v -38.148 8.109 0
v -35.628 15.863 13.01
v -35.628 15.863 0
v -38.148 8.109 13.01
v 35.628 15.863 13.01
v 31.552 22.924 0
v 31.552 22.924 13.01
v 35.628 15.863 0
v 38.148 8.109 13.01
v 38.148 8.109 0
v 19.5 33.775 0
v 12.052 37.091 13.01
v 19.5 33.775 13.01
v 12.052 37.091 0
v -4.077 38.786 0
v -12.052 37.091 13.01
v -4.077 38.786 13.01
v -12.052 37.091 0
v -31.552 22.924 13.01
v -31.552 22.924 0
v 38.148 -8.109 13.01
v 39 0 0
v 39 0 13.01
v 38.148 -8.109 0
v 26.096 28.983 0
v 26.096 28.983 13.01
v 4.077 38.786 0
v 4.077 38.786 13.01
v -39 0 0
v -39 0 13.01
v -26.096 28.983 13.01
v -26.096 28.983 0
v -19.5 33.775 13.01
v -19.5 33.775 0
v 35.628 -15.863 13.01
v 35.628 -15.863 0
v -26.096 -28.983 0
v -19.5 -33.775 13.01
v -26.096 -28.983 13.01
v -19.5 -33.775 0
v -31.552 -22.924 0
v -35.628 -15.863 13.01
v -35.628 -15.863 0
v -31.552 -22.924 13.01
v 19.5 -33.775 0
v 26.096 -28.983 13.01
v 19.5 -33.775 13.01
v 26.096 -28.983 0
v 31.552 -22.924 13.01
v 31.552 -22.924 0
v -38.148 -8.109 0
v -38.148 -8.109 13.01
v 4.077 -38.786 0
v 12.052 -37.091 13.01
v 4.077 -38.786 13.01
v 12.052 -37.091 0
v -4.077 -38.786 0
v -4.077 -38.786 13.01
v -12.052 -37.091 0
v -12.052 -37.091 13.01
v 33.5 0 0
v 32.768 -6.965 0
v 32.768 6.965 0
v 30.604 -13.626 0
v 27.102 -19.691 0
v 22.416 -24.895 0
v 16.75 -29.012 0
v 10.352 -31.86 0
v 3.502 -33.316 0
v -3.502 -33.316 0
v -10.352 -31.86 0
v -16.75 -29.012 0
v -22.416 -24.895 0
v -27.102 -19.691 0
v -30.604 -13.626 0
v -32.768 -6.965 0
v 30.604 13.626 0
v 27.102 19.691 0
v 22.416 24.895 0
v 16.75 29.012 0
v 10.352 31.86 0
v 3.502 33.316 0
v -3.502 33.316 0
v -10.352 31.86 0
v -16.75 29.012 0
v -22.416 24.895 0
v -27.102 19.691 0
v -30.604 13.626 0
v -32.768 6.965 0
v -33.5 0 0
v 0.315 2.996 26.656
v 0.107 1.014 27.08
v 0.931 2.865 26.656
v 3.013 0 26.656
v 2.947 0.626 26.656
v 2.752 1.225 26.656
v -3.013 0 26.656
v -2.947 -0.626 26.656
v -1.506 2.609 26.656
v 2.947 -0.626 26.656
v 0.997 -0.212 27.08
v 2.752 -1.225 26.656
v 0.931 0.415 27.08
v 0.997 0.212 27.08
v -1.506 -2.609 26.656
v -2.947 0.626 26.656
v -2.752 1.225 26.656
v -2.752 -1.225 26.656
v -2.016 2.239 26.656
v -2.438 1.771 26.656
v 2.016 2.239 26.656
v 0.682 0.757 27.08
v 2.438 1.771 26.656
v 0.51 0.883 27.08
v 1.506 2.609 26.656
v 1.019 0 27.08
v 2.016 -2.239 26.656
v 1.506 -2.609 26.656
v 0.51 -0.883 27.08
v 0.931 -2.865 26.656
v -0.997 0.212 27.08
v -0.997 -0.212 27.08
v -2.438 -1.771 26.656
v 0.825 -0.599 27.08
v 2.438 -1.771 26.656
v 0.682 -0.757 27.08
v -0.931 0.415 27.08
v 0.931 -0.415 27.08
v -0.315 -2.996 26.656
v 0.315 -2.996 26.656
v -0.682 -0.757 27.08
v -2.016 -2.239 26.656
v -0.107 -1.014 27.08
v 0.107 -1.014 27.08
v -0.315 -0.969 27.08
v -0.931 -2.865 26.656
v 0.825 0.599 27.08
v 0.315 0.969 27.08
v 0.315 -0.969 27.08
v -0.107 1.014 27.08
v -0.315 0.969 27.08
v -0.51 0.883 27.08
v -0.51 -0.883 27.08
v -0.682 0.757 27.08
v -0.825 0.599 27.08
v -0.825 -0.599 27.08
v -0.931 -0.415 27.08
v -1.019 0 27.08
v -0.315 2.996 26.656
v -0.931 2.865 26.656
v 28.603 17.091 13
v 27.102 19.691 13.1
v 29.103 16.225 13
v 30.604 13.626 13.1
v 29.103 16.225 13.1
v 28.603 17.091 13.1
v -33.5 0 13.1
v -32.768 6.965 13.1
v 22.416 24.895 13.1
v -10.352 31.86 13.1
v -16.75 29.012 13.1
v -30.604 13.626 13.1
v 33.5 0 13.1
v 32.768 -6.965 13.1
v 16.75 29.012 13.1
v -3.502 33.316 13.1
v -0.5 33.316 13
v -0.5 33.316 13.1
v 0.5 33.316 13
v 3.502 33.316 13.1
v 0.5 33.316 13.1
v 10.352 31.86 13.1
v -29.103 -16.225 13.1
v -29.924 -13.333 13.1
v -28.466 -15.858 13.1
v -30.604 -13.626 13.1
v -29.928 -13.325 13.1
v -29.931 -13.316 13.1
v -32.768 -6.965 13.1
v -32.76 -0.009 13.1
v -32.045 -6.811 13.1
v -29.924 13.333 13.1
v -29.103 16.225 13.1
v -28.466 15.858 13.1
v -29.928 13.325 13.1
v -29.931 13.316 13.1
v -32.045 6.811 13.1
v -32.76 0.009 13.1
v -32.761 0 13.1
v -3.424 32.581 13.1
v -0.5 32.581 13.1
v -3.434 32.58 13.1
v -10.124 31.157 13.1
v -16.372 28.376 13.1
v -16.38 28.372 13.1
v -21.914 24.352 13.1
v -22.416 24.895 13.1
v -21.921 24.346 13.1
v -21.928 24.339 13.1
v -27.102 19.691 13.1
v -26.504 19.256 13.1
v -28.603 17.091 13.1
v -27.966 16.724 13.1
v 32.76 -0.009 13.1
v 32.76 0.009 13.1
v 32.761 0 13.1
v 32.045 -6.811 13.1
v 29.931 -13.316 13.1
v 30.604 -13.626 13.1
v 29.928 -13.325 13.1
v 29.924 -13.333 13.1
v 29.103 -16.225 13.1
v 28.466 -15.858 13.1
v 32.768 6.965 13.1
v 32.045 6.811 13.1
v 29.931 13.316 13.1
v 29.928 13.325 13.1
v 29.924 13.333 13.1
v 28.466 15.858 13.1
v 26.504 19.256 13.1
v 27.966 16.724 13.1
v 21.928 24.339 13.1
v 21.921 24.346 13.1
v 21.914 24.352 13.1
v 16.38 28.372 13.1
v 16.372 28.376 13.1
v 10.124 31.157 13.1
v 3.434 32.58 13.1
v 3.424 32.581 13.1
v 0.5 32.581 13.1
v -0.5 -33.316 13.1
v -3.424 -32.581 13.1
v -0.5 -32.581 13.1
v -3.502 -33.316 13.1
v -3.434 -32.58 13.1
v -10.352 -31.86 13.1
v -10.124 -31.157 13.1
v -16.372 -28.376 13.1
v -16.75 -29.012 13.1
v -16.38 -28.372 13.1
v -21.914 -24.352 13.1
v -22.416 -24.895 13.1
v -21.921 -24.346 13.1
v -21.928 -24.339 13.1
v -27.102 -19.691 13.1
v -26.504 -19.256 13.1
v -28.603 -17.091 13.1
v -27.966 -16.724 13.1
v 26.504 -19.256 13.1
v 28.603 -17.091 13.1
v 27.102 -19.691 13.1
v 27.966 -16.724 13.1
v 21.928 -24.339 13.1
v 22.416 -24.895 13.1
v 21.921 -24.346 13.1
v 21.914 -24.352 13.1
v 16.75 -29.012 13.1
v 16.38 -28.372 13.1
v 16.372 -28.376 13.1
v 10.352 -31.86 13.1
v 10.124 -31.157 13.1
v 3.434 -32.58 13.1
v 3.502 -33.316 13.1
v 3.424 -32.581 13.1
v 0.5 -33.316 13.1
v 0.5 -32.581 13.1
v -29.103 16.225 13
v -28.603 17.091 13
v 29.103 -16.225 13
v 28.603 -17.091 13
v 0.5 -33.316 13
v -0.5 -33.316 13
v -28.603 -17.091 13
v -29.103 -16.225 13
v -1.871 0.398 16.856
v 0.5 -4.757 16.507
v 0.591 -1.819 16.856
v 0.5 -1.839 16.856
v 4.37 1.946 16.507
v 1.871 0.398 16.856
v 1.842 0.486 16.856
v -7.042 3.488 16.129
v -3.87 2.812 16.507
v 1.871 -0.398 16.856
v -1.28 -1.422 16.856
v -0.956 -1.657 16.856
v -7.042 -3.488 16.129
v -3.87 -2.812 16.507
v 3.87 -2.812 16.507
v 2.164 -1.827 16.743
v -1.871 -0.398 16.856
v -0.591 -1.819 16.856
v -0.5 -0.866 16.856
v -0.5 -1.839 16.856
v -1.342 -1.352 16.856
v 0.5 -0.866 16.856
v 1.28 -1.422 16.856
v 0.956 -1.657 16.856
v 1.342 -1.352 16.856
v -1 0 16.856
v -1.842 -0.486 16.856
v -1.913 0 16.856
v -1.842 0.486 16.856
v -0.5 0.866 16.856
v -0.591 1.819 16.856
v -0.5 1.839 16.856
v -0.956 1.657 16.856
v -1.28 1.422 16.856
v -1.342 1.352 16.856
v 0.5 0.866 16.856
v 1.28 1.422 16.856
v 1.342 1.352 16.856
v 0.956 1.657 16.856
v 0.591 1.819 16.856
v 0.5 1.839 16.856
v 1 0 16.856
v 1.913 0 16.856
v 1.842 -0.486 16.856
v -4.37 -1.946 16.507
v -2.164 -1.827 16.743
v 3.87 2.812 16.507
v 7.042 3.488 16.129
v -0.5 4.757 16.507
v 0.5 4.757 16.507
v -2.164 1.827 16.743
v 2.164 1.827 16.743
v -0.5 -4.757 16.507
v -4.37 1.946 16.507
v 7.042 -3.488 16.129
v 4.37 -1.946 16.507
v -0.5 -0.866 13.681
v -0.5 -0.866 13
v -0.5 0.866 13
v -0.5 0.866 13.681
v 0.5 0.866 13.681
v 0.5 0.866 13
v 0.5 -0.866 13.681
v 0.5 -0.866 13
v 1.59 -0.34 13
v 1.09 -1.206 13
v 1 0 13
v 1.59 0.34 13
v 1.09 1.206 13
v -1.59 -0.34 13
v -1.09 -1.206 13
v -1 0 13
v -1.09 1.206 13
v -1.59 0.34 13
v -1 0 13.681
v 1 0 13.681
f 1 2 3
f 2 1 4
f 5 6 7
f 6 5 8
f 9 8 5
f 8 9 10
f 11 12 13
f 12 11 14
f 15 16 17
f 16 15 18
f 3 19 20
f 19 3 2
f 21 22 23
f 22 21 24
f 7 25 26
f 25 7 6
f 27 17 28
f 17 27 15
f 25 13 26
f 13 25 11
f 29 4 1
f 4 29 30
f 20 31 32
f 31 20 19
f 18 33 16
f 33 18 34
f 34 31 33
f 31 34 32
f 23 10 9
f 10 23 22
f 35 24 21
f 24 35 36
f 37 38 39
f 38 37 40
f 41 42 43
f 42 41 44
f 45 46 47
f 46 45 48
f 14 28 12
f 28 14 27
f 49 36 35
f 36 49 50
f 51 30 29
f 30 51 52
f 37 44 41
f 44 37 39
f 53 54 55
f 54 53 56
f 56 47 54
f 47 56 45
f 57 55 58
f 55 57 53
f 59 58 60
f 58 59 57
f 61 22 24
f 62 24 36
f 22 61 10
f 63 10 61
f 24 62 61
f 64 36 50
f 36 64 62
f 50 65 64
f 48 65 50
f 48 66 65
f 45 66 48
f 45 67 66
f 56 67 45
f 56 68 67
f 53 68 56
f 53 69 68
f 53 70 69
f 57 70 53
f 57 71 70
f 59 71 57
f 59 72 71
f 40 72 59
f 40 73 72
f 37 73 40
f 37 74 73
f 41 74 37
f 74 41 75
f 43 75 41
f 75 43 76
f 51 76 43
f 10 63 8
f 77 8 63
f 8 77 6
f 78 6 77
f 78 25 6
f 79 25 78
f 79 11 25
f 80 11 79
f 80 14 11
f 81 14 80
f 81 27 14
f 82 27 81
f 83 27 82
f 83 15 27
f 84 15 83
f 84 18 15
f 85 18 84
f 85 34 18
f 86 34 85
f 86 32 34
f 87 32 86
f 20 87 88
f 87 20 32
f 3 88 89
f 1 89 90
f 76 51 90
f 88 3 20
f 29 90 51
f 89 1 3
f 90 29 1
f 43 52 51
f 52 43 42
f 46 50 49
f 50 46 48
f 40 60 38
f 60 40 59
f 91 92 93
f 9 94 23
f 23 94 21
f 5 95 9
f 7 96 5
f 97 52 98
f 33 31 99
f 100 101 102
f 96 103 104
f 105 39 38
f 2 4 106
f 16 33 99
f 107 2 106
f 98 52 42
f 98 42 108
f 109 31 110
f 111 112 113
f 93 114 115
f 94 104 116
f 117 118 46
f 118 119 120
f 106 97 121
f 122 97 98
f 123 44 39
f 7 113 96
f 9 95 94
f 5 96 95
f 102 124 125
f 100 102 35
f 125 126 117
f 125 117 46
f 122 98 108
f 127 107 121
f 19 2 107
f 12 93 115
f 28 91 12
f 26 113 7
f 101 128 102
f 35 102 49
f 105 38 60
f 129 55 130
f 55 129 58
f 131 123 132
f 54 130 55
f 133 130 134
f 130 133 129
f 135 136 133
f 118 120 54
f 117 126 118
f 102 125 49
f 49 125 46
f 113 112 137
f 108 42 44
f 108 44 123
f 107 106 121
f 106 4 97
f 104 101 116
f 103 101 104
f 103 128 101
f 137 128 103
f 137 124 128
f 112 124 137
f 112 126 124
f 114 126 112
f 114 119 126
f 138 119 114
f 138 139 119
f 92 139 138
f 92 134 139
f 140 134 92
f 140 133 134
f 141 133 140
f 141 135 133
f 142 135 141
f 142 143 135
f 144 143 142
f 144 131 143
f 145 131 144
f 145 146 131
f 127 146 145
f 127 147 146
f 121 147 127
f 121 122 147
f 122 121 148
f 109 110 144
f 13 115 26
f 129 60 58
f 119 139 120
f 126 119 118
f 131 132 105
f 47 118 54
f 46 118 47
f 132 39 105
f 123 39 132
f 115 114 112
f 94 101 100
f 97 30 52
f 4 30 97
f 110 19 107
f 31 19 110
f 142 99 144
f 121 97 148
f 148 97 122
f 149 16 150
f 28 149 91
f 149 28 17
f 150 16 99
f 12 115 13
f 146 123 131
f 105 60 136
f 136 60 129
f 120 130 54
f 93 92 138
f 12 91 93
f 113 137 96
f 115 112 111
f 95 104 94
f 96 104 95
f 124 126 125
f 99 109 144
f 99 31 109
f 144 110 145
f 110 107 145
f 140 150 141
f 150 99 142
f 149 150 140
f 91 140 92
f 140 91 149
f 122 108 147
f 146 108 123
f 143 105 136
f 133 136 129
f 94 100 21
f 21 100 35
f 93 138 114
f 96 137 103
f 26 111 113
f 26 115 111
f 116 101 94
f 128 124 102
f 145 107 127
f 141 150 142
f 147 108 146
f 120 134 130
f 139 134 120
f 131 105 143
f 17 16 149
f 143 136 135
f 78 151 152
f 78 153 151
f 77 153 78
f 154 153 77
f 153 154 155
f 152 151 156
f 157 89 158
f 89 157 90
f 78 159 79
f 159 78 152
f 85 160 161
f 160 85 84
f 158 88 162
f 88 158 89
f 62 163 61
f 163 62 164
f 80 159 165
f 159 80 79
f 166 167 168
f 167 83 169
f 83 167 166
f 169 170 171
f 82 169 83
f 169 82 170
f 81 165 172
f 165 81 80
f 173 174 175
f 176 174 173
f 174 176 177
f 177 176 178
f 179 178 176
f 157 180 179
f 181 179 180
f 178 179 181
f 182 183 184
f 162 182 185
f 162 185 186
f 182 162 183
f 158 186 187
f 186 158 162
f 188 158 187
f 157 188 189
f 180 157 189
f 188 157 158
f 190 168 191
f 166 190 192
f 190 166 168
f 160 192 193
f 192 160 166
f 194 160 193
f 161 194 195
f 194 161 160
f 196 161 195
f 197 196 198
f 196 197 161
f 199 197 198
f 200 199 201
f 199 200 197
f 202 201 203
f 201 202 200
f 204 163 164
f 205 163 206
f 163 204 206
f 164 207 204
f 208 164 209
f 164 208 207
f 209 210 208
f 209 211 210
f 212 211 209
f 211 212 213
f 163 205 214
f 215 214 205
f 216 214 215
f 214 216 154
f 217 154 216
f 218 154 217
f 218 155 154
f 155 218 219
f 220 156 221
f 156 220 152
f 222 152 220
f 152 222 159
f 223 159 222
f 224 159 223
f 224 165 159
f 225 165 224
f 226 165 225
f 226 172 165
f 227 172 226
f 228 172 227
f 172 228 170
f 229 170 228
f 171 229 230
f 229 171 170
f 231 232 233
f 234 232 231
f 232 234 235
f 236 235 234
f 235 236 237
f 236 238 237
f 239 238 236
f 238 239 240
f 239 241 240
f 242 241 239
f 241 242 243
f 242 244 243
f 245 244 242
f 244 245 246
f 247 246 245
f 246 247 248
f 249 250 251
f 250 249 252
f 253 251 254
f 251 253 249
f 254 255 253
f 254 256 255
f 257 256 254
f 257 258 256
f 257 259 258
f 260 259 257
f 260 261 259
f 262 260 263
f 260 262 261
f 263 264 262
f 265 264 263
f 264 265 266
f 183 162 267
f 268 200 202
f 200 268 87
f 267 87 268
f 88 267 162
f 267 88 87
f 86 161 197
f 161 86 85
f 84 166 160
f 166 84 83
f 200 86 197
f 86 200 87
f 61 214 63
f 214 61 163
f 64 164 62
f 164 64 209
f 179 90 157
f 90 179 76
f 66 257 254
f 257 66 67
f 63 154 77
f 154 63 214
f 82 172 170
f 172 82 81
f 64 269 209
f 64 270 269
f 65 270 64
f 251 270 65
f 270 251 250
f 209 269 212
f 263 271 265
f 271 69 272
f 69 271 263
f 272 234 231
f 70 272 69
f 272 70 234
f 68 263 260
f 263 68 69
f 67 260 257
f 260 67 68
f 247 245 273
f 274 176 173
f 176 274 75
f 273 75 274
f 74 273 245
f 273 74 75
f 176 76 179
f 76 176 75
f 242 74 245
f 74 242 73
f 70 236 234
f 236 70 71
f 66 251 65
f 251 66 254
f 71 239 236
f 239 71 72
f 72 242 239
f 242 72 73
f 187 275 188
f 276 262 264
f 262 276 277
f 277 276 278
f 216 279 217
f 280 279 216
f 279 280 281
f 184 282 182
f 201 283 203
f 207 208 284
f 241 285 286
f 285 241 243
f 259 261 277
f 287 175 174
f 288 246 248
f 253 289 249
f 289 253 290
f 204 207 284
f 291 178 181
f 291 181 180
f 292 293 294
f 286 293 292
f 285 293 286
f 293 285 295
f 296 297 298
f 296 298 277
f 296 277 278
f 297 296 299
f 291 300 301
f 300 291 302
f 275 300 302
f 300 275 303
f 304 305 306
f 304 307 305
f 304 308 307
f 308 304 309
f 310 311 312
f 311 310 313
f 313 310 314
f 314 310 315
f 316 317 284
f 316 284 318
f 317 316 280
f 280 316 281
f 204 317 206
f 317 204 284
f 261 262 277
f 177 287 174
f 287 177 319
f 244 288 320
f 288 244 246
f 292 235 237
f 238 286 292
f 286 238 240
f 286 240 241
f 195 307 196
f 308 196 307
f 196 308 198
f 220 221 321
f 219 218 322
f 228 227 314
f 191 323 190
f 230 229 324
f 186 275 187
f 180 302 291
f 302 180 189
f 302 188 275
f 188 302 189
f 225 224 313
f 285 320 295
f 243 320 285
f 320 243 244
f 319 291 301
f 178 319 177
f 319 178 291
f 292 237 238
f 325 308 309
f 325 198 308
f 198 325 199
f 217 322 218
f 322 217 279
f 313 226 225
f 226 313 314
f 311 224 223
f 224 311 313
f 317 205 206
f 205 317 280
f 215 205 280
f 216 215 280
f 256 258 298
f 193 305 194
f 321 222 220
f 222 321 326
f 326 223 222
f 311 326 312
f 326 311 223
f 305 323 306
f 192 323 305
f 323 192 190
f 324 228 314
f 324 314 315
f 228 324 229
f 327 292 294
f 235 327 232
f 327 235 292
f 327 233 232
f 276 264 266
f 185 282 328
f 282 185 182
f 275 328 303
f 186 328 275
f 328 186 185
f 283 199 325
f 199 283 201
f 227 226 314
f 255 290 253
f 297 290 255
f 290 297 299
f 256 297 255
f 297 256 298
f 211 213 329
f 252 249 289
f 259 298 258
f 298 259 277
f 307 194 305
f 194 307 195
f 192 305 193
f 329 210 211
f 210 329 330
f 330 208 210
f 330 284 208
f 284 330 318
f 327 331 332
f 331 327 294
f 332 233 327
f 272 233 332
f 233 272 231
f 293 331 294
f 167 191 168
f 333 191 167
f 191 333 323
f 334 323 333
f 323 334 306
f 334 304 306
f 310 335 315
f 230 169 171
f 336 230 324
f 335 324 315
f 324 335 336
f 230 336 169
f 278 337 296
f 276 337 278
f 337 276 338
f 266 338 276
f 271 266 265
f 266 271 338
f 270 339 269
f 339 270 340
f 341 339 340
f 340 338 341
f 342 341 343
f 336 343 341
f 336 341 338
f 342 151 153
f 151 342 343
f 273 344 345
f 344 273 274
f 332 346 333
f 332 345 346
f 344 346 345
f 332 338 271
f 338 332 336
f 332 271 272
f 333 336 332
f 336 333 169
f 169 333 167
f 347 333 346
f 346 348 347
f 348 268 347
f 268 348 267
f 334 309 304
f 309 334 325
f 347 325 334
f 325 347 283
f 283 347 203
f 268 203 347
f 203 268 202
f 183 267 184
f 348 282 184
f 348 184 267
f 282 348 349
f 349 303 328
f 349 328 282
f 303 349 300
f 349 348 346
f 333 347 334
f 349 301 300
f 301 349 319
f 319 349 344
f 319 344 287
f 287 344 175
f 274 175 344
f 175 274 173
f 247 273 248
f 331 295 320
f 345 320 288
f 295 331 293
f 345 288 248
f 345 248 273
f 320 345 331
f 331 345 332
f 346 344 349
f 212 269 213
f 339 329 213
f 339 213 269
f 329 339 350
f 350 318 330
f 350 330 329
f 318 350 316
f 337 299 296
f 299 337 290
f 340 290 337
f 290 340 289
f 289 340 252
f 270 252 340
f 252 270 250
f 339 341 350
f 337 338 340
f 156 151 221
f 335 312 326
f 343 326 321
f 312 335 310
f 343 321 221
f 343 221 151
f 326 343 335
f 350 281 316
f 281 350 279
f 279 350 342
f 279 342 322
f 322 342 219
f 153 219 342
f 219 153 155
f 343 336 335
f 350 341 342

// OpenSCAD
union() {
	difference() {
		union() {
			cylinder(h = 13.0000000000, r = 39.0000000000);
			hull() {
				translate(v = [0, 0, 13.0000000000]) {
					hull() {
						cylinder(h = 0.0100000000, r = 39.0000000000);
						translate(v = [0, 0, 4.3830123647]) {
							cylinder(h = 0.0100000000, r = 11.7000000000);
						}
					}
				}
				translate(v = [0, 0, 17.3830123647]) {
					sphere(r = 9.7500000000);
				}
			}
		}
		union() {
			translate(v = [0, 0, -0.1000000000]) {
				cylinder(h = 13.2000000000, r = 33.5000000000);
			}
			translate(v = [0, 0, 13.0000000000]) {
				hull() {
					cylinder(h = 0.0100000000, r = 33.5000000000);
					translate(v = [0, 0, -14.3435148651]) {
						sphere(r = 18.3000000000);
					}
				}
			}
		}
	}
	union() {
		intersection() {
			union() {
				rotate(a = [0, 0, 0.0000000000]) {
					translate(v = [0, 0, 13.0000000000]) {
						translate(v = [-0.5000000000, 0, 0]) {
							cube(size = [1.0000000000, 39.0000000000, 4.1251881080]);
						}
					}
				}
				rotate(a = [0, 0, 0.0000000000]) {
					translate(v = [0, 0, 13.0000000000]) {
						translate(v = [-0.5000000000, 0, 0]) {
							rotate(a = [90, 0, 90]) {
								linear_extrude(height = 1.0000000000) {
									polygon(points = [[0, 0], [1.5469455405, 0], [0, 1.5469455405]]);
								}
							}
						}
					}
				}
			}
			hull() {
				translate(v = [0, 0, 13.0000000000]) {
					hull() {
						cylinder(h = 0.0100000000, r = 39.0000000000);
						translate(v = [0, 0, 4.3830123647]) {
							cylinder(h = 0.0100000000, r = 11.7000000000);
						}
					}
				}
				translate(v = [0, 0, 17.3830123647]) {
					sphere(r = 9.7500000000);
				}
			}
		}
		intersection() {
			union() {
				rotate(a = [0, 0, 60.0000000000]) {
					translate(v = [0, 0, 13.0000000000]) {
						translate(v = [-0.5000000000, 0, 0]) {
							cube(size = [1.0000000000, 39.0000000000, 4.1251881080]);
						}
					}
				}
				rotate(a = [0, 0, 60.0000000000]) {
					translate(v = [0, 0, 13.0000000000]) {
						translate(v = [-0.5000000000, 0, 0]) {
							rotate(a = [90, 0, 90]) {
								linear_extrude(height = 1.0000000000) {
									polygon(points = [[0, 0], [1.5469455405, 0], [0, 1.5469455405]]);
								}
							}
						}
					}
				}
			}
			hull() {
				translate(v = [0, 0, 13.0000000000]) {
					hull() {
						cylinder(h = 0.0100000000, r = 39.0000000000);
						translate(v = [0, 0, 4.3830123647]) {
							cylinder(h = 0.0100000000, r = 11.7000000000);
						}
					}
				}
				translate(v = [0, 0, 17.3830123647]) {
					sphere(r = 9.7500000000);
				}
			}
		}
		intersection() {
			union() {
				rotate(a = [0, 0, 120.0000000000]) {
					translate(v = [0, 0, 13.0000000000]) {
						translate(v = [-0.5000000000, 0, 0]) {
							cube(size = [1.0000000000, 39.0000000000, 4.1251881080]);
						}
					}
				}
				rotate(a = [0, 0, 120.0000000000]) {
					translate(v = [0, 0, 13.0000000000]) {
						translate(v = [-0.5000000000, 0, 0]) {
							rotate(a = [90, 0, 90]) {
								linear_extrude(height = 1.0000000000) {
									polygon(points = [[0, 0], [1.5469455405, 0], [0, 1.5469455405]]);
								}
							}
						}
					}
				}
			}
			hull() {
				translate(v = [0, 0, 13.0000000000]) {
					hull() {
						cylinder(h = 0.0100000000, r = 39.0000000000);
						translate(v = [0, 0, 4.3830123647]) {
							cylinder(h = 0.0100000000, r = 11.7000000000);
						}
					}
				}
				translate(v = [0, 0, 17.3830123647]) {
					sphere(r = 9.7500000000);
				}
			}
		}
		intersection() {
			union() {
				rotate(a = [0, 0, 180.0000000000]) {
					translate(v = [0, 0, 13.0000000000]) {
						translate(v = [-0.5000000000, 0, 0]) {
							cube(size = [1.0000000000, 39.0000000000, 4.1251881080]);
						}
					}
				}
				rotate(a = [0, 0, 180.0000000000]) {
					translate(v = [0, 0, 13.0000000000]) {
						translate(v = [-0.5000000000, 0, 0]) {
							rotate(a = [90, 0, 90]) {
								linear_extrude(height = 1.0000000000) {
									polygon(points = [[0, 0], [1.5469455405, 0], [0, 1.5469455405]]);
								}
							}
						}
					}
				}
			}
			hull() {
				translate(v = [0, 0, 13.0000000000]) {
					hull() {
						cylinder(h = 0.0100000000, r = 39.0000000000);
						translate(v = [0, 0, 4.3830123647]) {
							cylinder(h = 0.0100000000, r = 11.7000000000);
						}
					}
				}
				translate(v = [0, 0, 17.3830123647]) {
					sphere(r = 9.7500000000);
				}
			}
		}
		intersection() {
			union() {
				rotate(a = [0, 0, 240.0000000000]) {
					translate(v = [0, 0, 13.0000000000]) {
						translate(v = [-0.5000000000, 0, 0]) {
							cube(size = [1.0000000000, 39.0000000000, 4.1251881080]);
						}
					}
				}
				rotate(a = [0, 0, 240.0000000000]) {
					translate(v = [0, 0, 13.0000000000]) {
						translate(v = [-0.5000000000, 0, 0]) {
							rotate(a = [90, 0, 90]) {
								linear_extrude(height = 1.0000000000) {
									polygon(points = [[0, 0], [1.5469455405, 0], [0, 1.5469455405]]);
								}
							}
						}
					}
				}
			}
			hull() {
				translate(v = [0, 0, 13.0000000000]) {
					hull() {
						cylinder(h = 0.0100000000, r = 39.0000000000);
						translate(v = [0, 0, 4.3830123647]) {
							cylinder(h = 0.0100000000, r = 11.7000000000);
						}
					}
				}
				translate(v = [0, 0, 17.3830123647]) {
					sphere(r = 9.7500000000);
				}
			}
		}
		intersection() {
			union() {
				rotate(a = [0, 0, 300.0000000000]) {
					translate(v = [0, 0, 13.0000000000]) {
						translate(v = [-0.5000000000, 0, 0]) {
							cube(size = [1.0000000000, 39.0000000000, 4.1251881080]);
						}
					}
				}
				rotate(a = [0, 0, 300.0000000000]) {
					translate(v = [0, 0, 13.0000000000]) {
						translate(v = [-0.5000000000, 0, 0]) {
							rotate(a = [90, 0, 90]) {
								linear_extrude(height = 1.0000000000) {
									polygon(points = [[0, 0], [1.5469455405, 0], [0, 1.5469455405]]);
								}
							}
						}
					}
				}
			}
			hull() {
				translate(v = [0, 0, 13.0000000000]) {
					hull() {
						cylinder(h = 0.0100000000, r = 39.0000000000);
						translate(v = [0, 0, 4.3830123647]) {
							cylinder(h = 0.0100000000, r = 11.7000000000);
						}
					}
				}
				translate(v = [0, 0, 17.3830123647]) {
					sphere(r = 9.7500000000);
				}
			}
		}
	}
}
